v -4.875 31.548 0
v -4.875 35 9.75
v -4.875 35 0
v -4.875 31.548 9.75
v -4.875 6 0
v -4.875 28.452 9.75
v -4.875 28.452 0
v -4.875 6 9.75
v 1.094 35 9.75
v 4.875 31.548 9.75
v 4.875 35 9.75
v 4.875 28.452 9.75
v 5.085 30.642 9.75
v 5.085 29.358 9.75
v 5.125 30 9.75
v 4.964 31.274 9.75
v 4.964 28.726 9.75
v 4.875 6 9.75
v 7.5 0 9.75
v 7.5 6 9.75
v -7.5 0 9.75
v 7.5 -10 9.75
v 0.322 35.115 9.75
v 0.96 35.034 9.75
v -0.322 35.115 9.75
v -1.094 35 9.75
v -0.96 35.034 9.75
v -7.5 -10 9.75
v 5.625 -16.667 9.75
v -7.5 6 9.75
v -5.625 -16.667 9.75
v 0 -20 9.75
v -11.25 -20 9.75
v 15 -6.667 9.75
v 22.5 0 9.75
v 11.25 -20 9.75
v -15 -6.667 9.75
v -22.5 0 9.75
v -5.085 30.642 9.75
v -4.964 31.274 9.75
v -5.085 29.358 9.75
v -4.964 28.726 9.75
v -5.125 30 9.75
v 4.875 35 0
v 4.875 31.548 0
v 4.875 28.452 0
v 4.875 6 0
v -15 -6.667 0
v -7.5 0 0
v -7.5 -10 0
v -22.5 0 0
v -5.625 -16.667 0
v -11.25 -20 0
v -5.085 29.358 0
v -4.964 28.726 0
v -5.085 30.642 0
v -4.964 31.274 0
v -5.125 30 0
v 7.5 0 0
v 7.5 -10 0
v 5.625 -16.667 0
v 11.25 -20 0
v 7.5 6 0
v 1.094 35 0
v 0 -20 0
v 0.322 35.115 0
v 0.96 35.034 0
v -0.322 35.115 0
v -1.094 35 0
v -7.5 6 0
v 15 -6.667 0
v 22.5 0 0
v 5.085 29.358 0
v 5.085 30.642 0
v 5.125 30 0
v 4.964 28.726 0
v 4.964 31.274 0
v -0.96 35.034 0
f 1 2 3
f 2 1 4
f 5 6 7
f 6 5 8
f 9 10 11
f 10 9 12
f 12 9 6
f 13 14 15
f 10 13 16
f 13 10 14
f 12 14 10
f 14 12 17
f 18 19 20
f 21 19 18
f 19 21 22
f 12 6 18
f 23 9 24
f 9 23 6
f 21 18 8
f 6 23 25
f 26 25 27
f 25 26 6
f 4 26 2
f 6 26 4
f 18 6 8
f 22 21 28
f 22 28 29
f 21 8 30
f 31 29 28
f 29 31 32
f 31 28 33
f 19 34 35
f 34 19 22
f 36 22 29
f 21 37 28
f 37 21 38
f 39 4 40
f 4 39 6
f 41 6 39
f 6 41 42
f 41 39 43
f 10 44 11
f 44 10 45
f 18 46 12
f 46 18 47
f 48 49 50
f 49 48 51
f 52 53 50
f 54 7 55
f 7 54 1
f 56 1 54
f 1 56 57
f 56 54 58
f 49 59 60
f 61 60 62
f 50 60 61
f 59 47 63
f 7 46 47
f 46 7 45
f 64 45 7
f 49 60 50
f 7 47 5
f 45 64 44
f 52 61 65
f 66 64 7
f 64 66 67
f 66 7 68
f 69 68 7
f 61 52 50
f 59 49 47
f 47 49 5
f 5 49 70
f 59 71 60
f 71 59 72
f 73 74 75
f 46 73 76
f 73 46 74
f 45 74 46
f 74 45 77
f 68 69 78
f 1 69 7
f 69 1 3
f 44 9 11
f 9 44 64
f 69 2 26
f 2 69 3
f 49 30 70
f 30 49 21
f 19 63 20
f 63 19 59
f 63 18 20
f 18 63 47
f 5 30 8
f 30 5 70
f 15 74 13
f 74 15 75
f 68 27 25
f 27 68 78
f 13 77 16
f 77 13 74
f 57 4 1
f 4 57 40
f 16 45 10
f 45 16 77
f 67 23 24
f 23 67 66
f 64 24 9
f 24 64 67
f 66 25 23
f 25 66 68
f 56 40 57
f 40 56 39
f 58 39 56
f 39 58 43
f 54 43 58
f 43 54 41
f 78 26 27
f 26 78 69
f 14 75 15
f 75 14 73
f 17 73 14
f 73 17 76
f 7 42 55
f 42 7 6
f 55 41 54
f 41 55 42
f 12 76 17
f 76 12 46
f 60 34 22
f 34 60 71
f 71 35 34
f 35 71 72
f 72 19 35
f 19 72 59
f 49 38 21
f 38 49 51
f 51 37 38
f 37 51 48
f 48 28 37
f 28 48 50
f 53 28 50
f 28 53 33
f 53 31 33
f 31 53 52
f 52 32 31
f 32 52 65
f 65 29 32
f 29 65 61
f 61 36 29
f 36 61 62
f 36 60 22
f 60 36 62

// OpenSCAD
// carrot top insert

// clearance
tol = 0.25;

// innere insert parameters
iih = 10;
iiw = 10;
iil = 20;

// outer insert parameters
iob = 45;
iol = 20;
ioh = iih;
irh = iih;
irw = 15;
irl = 6;

real_h = iih - tol;

pp = [[-iob / 2, 0],
	[-iob / 3 , -iol / 3],
	[-iob / 6 , -iol / 2],
	[-iob / 4 , -iol],
	[-iob / 8 , -iol * 5 / 6],
	[0, -iol],
	[iob / 8 , -iol * 5 / 6],
	[iob / 4 , -iol],
	[iob / 6 , -iol / 2],
	[iob / 3 , -iol / 3],
	[iob / 2, 0]];
pl = [[0, 1, 2, 3, 4, 5, 6, 7, 8, 9, 10]];

translate([-(iiw - tol) / 2, 0, 0]) cube([iiw - tol, iil + irw, real_h]);
translate([-irw / 2, -irl, 0]) cube([irw, irl * 2, real_h]);
translate([0, iil + irw - iih / 2, 0]) cylinder(d = iiw + tol, h = real_h, $fn = 50);
translate([0, 0, 0]) linear_extrude(real_h) polygon(pp, pl, 10);
